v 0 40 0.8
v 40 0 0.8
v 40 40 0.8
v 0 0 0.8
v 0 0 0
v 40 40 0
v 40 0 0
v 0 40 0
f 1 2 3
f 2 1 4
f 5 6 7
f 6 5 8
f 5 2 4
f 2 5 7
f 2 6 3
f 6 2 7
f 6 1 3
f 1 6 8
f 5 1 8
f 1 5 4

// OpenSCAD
// Tinmans Tuning Guide, chapter 01: first-layer check.
// One 40 x 40 x 0.8 mm solid square; Tinman places five copies, at the bed centre and near
// each corner. Measure each square's thickness with calipers: it should match the sliced
// height within a few hundredths of a millimetre.
cube([40, 40, 0.8]);
